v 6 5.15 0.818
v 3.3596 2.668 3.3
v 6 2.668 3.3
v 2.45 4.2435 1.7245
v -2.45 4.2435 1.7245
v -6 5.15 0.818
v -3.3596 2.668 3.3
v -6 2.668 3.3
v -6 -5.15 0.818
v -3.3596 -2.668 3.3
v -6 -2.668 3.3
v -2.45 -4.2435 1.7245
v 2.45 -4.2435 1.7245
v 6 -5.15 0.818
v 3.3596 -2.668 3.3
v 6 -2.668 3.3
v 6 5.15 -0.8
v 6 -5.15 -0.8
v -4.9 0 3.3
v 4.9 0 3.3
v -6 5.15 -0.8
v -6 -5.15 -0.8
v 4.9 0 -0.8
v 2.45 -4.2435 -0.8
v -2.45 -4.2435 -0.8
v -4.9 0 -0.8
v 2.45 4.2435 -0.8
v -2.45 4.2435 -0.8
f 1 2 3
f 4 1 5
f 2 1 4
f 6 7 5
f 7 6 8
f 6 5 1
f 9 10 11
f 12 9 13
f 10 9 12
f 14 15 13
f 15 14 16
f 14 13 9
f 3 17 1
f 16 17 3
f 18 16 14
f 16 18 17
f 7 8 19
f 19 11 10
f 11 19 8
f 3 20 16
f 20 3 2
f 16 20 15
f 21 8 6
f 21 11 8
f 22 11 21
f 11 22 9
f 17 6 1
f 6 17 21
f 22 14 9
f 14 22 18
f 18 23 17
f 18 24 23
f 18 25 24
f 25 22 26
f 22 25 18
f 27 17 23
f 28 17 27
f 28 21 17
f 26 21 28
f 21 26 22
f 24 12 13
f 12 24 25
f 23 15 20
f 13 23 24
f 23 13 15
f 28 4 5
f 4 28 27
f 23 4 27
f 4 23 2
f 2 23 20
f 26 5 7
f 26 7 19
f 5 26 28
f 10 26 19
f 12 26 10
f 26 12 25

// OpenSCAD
$fn=64;

MargenImpresion = 0.2;
Tuerca_h = 6;
TuercaR  = 4.7+MargenImpresion;
AgujeroR = 2+MargenImpresion; 

Largo = 12;



Trapecio_h1 = 1.8-MargenImpresion;
Trapecio_h2 = 2.5;

Trapecio_b1 = 10.5 - MargenImpresion;
Trapecio_b2 = 6.2;


module Perfil(){
    //     translate([Trapecio_h2,0,0])
    //     import("T-nut_M3_2020_aluprofile.stl", convexity=6);
    //
    cube([Largo,Trapecio_b1, Trapecio_h1], center=true);
    difference(){
        translate([0,0,(Trapecio_h1+Trapecio_h2)/2])
            cube([Largo,Trapecio_b1, Trapecio_h2], center=true);
        for ( i = [-45, 45] ) {
            rotate([i,0,0]) translate([0,0,Trapecio_h1/2+Trapecio_h1+Trapecio_b2*1.1]) cube([21,21,10],center=true);

        }
    }
}


module Tuerca532(){
    translate([0,0,(Trapecio_h2+Trapecio_h1)/2 -0.05]) rotate([0,0,0])
    cylinder(r=TuercaR, h=Tuerca_h, $fn=6,center=true);
}


difference(){
    Perfil();
    Tuerca532();
    cylinder(r=AgujeroR, h=10, center=true);
}
